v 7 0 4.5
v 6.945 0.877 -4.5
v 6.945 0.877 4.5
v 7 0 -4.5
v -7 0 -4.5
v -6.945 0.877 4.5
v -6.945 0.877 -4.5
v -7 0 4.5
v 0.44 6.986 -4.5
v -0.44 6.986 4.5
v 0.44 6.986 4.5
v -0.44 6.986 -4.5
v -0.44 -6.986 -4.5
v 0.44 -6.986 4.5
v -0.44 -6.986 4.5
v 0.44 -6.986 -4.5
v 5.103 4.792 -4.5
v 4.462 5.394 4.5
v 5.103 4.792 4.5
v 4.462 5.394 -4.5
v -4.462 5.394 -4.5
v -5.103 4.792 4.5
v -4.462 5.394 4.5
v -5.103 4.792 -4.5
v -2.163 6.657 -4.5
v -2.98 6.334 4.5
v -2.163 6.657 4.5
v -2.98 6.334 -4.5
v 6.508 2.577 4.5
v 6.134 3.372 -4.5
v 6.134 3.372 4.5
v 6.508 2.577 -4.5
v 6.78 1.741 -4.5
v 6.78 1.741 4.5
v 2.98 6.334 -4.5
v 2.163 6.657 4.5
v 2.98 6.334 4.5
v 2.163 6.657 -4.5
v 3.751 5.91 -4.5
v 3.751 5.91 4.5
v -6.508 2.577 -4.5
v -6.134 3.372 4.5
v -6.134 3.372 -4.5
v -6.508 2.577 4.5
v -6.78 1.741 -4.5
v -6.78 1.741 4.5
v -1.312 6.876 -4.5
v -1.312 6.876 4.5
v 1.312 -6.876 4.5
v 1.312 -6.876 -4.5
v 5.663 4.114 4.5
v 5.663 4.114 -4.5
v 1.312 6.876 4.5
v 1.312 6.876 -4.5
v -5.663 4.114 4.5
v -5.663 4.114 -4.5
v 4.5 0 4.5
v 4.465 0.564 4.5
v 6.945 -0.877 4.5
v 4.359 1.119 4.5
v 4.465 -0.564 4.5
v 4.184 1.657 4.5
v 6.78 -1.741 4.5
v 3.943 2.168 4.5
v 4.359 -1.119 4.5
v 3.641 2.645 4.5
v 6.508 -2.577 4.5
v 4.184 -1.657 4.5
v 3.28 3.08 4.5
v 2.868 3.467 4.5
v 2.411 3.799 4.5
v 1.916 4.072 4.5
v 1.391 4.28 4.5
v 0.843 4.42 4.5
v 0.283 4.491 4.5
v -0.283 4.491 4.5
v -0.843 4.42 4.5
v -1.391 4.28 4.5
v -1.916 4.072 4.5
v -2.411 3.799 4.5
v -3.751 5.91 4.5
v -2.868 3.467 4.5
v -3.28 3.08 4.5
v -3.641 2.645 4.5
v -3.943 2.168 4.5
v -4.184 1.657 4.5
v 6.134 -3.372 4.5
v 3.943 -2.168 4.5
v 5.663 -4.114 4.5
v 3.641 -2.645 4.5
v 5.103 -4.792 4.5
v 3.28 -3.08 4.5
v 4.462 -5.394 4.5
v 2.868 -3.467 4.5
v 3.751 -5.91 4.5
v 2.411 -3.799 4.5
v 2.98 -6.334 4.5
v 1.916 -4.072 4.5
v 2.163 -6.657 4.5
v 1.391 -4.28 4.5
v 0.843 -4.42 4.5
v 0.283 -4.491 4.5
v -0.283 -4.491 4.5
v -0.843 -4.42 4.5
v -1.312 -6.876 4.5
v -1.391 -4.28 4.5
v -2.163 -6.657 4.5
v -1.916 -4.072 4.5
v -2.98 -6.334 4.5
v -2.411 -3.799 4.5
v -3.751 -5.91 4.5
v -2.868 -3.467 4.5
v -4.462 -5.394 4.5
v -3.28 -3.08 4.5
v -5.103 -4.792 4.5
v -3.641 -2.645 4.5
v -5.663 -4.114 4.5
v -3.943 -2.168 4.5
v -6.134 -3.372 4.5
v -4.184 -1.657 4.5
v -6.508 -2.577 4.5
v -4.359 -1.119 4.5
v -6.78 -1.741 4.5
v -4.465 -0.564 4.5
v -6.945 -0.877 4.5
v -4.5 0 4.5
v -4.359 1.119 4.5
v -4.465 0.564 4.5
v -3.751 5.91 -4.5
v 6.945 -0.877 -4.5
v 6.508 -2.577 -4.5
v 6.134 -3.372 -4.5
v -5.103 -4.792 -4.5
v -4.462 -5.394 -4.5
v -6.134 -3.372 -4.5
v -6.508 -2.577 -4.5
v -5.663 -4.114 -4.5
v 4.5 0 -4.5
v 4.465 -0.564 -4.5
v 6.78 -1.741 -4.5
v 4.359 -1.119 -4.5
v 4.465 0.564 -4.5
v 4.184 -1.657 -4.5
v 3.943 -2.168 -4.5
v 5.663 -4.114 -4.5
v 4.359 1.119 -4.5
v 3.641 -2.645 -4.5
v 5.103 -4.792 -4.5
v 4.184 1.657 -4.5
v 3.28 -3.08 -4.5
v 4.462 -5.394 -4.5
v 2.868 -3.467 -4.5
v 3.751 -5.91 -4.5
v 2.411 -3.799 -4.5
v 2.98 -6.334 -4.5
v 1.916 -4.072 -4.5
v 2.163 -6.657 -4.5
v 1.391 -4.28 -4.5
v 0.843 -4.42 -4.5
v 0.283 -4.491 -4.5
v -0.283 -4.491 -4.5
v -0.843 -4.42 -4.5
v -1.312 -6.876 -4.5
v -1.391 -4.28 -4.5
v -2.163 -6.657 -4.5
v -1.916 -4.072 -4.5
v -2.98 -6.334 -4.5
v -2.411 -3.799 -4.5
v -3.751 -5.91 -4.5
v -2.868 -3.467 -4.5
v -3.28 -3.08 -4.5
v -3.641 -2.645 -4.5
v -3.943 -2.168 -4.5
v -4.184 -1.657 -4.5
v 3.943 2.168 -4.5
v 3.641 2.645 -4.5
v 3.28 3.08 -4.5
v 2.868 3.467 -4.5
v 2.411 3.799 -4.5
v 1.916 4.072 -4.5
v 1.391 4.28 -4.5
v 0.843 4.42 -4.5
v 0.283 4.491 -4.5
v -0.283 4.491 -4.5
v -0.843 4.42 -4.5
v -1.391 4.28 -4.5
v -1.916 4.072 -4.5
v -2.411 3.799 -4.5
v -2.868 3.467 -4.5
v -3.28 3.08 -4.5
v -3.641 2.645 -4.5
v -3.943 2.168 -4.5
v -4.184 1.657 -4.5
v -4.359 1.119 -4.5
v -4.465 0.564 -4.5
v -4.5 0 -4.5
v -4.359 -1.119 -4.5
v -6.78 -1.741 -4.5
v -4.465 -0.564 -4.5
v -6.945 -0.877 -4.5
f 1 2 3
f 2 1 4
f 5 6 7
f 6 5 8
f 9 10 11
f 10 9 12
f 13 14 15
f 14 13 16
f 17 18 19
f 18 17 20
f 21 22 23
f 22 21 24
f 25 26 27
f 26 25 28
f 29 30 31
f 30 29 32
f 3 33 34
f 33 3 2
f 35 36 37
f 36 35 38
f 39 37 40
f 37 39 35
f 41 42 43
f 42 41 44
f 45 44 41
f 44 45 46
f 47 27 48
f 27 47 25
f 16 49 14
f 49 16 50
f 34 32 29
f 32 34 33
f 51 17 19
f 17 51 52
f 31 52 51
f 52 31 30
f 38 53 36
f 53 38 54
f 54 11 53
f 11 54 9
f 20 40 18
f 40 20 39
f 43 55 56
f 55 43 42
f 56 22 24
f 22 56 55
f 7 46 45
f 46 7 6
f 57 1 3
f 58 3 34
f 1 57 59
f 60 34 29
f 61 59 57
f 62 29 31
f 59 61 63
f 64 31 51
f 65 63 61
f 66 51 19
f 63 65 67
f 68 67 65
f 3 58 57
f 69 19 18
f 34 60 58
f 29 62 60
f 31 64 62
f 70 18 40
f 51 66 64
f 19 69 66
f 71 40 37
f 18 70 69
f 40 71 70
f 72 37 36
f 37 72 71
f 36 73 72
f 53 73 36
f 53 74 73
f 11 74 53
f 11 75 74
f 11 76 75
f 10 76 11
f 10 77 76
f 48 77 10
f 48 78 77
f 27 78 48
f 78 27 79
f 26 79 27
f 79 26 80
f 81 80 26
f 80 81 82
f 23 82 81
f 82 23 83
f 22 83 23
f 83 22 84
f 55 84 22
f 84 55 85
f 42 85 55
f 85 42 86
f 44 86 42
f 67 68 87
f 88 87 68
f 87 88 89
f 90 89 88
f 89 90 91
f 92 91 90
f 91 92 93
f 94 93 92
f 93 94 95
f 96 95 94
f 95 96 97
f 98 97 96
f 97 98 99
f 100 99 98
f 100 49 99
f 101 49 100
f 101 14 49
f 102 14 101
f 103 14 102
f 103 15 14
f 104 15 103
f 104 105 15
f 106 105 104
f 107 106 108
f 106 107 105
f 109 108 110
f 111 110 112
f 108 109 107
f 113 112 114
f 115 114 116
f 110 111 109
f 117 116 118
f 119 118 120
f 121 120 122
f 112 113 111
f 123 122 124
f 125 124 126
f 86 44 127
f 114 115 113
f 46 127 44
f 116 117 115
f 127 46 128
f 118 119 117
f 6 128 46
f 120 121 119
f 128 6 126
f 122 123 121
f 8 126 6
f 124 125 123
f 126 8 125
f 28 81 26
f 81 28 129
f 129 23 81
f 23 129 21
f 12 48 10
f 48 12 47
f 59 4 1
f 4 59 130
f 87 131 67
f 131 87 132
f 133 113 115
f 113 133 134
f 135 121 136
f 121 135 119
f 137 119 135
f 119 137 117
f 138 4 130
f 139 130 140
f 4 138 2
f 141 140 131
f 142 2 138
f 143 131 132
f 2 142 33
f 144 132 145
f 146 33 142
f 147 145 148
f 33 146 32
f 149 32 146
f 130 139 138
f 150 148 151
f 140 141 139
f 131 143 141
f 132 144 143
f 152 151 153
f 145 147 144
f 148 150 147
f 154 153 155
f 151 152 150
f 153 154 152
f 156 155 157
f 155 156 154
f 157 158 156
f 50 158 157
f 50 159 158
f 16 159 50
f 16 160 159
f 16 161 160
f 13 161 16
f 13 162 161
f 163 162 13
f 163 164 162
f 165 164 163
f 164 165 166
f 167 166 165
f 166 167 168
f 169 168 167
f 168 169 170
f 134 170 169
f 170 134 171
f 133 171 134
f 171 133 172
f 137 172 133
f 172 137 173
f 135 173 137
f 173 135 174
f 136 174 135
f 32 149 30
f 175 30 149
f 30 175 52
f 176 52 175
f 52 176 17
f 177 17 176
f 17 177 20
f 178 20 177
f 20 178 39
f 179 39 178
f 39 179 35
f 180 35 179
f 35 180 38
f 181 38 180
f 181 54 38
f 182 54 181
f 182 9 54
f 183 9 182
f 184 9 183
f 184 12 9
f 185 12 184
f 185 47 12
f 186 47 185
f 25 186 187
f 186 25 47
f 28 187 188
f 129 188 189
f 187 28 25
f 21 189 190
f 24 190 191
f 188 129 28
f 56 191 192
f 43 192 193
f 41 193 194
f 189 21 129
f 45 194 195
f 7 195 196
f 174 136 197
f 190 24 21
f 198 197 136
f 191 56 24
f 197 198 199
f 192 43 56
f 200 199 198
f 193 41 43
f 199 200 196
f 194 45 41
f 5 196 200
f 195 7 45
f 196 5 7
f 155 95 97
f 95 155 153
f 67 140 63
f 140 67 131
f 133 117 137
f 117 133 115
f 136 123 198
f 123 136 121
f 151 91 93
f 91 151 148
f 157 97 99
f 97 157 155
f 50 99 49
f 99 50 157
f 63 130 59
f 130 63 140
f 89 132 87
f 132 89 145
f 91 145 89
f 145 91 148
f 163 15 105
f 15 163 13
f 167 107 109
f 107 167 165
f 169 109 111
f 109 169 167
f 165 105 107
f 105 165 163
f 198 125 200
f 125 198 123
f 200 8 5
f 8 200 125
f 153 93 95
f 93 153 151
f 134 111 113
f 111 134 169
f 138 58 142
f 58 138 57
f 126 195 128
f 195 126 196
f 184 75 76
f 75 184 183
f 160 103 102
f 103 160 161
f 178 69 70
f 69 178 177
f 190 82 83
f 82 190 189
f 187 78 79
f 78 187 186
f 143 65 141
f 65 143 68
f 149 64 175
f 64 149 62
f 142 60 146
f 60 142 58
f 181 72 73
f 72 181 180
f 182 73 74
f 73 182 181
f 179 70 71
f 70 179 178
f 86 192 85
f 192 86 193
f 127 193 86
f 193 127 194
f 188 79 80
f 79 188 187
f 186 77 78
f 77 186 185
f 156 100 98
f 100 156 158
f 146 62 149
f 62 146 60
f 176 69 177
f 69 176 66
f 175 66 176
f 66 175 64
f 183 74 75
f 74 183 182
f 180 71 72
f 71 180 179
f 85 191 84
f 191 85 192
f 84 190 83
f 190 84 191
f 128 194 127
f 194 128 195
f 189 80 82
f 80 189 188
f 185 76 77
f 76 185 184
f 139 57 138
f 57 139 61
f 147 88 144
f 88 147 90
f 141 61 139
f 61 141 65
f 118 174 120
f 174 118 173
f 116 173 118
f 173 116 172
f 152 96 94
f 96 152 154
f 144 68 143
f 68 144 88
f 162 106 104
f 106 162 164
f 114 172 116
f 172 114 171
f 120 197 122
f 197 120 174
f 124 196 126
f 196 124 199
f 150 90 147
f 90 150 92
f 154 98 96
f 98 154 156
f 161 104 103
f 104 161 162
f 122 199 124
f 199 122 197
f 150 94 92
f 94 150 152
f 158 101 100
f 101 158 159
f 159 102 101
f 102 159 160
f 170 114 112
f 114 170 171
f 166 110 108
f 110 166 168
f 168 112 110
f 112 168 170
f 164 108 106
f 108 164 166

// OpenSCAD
$fn = 50;


difference() {
	union() {
		translate(v = [0, 0, -4.5000000000]) {
			cylinder(h = 9, r = 7.0000000000);
		}
	}
	union() {
		translate(v = [0, 0, -100.0000000000]) {
			cylinder(h = 200, r = 4.5000000000);
		}
	}
}
